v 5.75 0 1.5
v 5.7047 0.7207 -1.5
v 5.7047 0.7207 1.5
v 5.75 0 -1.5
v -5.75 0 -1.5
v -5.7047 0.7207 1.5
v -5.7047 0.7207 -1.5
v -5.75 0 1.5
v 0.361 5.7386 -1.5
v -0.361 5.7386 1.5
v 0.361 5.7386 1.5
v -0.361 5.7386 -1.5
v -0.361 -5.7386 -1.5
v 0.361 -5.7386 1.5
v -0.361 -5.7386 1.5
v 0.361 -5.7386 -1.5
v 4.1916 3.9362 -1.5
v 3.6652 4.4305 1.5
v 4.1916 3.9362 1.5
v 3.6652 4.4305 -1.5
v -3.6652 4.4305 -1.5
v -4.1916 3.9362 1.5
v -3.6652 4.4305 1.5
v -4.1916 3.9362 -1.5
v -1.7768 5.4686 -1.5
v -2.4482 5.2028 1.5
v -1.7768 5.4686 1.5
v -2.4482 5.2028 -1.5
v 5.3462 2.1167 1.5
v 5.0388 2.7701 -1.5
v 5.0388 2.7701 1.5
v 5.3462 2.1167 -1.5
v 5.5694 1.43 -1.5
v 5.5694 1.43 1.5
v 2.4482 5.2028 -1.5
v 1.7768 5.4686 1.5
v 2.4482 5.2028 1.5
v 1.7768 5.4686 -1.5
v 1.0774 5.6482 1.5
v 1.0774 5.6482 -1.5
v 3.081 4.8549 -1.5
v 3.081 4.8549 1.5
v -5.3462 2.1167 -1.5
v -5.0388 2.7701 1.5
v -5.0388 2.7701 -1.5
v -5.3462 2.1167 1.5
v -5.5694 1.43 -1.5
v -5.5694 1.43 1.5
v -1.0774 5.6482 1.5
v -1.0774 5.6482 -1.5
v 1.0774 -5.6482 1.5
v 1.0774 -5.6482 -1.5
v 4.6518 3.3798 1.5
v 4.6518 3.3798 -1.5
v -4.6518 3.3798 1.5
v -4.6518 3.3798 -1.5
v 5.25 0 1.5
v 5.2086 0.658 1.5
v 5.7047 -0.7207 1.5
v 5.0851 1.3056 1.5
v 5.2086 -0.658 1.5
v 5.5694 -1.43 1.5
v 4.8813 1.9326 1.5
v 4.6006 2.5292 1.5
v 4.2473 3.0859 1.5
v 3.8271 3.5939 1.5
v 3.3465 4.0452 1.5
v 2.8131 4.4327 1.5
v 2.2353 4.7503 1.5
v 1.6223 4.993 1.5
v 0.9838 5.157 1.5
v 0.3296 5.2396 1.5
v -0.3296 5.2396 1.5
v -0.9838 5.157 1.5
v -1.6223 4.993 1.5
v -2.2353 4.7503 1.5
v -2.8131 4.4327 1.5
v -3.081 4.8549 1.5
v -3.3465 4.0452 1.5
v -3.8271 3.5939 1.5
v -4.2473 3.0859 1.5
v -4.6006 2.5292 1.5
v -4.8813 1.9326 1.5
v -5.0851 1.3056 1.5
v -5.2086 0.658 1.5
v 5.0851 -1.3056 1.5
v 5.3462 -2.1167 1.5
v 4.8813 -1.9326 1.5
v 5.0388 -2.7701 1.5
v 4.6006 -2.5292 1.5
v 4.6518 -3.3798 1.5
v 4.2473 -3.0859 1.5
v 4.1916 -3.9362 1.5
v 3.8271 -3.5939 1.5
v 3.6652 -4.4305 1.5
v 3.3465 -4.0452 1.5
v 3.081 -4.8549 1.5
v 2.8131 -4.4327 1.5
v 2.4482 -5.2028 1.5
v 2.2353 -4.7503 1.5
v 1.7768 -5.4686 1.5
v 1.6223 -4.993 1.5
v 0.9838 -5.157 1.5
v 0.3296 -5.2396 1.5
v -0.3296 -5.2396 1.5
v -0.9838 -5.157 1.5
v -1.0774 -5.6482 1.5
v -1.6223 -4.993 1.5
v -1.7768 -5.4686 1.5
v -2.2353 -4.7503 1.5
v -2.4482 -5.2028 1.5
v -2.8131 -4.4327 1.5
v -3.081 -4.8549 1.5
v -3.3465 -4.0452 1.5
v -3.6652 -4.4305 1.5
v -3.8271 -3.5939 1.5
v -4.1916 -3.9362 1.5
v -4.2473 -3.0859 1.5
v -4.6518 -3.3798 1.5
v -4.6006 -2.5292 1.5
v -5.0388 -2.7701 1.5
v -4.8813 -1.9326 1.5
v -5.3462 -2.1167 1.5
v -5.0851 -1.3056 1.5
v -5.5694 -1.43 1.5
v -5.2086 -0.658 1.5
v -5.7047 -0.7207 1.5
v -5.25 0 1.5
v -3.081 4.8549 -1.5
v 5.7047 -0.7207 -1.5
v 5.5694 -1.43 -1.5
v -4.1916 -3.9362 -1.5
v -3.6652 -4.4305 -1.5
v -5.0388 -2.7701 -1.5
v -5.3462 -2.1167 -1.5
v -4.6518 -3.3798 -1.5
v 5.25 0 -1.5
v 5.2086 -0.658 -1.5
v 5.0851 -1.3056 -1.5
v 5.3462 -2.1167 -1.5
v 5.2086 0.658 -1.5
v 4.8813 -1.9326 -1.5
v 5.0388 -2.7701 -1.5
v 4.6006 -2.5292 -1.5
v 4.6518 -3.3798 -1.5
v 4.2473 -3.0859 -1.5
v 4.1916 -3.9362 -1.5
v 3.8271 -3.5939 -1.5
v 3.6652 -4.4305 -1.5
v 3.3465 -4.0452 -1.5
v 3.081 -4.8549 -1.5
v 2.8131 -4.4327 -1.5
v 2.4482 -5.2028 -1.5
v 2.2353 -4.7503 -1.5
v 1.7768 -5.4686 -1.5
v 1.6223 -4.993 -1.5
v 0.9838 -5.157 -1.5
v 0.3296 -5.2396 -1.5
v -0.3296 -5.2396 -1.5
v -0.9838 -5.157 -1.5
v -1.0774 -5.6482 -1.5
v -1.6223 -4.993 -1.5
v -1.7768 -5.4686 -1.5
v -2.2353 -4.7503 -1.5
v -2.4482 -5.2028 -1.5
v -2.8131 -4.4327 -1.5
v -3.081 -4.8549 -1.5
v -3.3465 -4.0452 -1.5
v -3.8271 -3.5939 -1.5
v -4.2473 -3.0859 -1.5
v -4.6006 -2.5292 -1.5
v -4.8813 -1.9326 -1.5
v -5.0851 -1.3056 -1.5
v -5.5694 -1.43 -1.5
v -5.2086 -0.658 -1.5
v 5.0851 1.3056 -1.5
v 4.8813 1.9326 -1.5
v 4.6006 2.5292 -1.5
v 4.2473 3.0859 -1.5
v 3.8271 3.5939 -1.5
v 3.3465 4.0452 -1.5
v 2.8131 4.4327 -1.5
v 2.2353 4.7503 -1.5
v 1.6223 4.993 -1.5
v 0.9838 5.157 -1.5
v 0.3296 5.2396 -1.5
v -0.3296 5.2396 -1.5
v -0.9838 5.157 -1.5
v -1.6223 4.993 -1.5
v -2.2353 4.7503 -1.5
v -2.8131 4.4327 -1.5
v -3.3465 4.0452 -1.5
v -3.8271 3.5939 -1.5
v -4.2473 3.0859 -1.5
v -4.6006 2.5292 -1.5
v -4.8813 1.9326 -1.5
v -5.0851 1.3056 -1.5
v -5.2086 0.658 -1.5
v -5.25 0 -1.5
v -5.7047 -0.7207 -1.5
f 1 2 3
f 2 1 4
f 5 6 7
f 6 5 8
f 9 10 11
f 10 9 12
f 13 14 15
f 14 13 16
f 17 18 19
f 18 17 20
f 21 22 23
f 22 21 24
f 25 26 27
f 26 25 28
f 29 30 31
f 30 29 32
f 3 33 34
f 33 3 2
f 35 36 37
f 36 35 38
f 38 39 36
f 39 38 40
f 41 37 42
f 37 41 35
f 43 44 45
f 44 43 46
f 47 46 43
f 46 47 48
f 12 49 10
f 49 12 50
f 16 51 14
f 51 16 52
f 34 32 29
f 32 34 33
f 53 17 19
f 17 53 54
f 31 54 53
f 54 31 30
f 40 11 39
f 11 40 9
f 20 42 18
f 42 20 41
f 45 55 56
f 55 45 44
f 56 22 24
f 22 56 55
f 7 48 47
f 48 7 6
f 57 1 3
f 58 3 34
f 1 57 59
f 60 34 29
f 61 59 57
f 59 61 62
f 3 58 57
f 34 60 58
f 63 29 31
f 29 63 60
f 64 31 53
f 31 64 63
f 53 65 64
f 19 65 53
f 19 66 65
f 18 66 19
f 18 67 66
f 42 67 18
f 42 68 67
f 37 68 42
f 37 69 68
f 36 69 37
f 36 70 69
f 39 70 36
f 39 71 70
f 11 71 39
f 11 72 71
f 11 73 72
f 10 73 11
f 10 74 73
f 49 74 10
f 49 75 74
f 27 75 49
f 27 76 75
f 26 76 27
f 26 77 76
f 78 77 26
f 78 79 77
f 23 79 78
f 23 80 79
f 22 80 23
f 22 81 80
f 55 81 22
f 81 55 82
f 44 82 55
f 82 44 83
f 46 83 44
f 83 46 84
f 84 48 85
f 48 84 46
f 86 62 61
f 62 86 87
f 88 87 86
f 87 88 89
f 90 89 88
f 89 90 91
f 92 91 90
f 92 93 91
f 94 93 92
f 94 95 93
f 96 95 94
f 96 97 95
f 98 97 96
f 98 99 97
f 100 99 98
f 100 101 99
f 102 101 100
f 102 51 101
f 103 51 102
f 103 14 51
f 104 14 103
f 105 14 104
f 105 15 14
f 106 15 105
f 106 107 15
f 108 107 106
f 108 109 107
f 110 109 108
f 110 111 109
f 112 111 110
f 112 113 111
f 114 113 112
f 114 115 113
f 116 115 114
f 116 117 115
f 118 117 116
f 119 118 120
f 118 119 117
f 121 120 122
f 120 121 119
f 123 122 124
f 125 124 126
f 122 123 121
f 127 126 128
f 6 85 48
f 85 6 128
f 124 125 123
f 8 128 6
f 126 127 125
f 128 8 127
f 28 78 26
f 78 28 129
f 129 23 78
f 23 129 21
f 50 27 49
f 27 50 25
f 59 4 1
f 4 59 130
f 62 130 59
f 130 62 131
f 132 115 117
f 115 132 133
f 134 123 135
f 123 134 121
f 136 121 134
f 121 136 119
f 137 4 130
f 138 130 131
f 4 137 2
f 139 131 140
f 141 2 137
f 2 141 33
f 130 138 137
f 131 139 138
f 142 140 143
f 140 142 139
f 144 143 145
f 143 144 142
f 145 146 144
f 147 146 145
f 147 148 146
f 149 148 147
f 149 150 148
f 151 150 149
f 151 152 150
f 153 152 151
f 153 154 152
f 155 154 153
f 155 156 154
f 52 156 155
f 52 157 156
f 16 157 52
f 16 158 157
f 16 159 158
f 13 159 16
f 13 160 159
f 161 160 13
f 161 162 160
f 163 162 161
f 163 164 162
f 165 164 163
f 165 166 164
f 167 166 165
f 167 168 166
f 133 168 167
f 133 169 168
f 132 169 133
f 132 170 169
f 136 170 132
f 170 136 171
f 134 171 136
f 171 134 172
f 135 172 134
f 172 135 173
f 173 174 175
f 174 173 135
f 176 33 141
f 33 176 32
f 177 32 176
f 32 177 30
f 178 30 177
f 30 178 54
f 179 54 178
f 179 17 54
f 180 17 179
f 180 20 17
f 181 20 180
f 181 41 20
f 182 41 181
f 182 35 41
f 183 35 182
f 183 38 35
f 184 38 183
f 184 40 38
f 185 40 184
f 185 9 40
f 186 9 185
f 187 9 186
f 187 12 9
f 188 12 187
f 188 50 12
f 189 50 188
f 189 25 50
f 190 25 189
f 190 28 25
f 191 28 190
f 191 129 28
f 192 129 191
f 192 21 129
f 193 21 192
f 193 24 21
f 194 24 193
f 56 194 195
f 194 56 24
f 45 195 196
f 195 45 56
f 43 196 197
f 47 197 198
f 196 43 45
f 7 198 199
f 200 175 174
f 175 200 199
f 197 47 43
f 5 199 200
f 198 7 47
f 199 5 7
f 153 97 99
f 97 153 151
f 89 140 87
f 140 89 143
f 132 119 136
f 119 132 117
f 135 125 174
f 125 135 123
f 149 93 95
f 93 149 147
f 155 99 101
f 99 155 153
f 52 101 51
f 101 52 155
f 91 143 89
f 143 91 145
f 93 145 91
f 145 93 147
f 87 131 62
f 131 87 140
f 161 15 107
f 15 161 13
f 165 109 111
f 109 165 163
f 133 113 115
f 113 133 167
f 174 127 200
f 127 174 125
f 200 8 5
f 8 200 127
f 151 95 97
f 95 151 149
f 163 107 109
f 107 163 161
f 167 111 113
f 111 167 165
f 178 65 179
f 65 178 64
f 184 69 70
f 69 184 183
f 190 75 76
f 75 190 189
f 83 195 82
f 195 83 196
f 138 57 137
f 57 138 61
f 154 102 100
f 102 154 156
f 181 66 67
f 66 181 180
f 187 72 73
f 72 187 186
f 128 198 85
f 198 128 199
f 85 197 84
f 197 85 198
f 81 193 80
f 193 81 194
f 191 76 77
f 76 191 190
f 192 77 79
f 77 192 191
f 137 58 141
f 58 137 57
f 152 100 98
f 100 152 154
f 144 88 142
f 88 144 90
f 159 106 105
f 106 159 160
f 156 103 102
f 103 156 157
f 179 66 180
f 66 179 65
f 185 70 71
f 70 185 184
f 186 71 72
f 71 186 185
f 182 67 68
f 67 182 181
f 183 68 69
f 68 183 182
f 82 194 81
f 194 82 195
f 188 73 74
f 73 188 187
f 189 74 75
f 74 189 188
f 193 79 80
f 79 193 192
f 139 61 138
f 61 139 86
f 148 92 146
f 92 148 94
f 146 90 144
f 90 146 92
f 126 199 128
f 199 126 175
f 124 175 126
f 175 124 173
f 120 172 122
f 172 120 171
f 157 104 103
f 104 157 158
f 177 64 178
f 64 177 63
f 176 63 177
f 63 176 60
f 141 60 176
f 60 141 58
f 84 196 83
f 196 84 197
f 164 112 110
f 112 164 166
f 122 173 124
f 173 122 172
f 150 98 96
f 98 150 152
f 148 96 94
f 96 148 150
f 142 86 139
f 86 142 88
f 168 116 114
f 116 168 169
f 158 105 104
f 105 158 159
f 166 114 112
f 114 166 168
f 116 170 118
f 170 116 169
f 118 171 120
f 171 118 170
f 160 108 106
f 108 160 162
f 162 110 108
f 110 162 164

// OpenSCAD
$fn = 50;


difference() {
	union() {
		translate(v = [0, 0, -1.5000000000]) {
			cylinder(h = 3, r = 5.7500000000);
		}
	}
	union() {
		translate(v = [0, 0, -100.0000000000]) {
			cylinder(h = 200, r = 5.2500000000);
		}
	}
}
